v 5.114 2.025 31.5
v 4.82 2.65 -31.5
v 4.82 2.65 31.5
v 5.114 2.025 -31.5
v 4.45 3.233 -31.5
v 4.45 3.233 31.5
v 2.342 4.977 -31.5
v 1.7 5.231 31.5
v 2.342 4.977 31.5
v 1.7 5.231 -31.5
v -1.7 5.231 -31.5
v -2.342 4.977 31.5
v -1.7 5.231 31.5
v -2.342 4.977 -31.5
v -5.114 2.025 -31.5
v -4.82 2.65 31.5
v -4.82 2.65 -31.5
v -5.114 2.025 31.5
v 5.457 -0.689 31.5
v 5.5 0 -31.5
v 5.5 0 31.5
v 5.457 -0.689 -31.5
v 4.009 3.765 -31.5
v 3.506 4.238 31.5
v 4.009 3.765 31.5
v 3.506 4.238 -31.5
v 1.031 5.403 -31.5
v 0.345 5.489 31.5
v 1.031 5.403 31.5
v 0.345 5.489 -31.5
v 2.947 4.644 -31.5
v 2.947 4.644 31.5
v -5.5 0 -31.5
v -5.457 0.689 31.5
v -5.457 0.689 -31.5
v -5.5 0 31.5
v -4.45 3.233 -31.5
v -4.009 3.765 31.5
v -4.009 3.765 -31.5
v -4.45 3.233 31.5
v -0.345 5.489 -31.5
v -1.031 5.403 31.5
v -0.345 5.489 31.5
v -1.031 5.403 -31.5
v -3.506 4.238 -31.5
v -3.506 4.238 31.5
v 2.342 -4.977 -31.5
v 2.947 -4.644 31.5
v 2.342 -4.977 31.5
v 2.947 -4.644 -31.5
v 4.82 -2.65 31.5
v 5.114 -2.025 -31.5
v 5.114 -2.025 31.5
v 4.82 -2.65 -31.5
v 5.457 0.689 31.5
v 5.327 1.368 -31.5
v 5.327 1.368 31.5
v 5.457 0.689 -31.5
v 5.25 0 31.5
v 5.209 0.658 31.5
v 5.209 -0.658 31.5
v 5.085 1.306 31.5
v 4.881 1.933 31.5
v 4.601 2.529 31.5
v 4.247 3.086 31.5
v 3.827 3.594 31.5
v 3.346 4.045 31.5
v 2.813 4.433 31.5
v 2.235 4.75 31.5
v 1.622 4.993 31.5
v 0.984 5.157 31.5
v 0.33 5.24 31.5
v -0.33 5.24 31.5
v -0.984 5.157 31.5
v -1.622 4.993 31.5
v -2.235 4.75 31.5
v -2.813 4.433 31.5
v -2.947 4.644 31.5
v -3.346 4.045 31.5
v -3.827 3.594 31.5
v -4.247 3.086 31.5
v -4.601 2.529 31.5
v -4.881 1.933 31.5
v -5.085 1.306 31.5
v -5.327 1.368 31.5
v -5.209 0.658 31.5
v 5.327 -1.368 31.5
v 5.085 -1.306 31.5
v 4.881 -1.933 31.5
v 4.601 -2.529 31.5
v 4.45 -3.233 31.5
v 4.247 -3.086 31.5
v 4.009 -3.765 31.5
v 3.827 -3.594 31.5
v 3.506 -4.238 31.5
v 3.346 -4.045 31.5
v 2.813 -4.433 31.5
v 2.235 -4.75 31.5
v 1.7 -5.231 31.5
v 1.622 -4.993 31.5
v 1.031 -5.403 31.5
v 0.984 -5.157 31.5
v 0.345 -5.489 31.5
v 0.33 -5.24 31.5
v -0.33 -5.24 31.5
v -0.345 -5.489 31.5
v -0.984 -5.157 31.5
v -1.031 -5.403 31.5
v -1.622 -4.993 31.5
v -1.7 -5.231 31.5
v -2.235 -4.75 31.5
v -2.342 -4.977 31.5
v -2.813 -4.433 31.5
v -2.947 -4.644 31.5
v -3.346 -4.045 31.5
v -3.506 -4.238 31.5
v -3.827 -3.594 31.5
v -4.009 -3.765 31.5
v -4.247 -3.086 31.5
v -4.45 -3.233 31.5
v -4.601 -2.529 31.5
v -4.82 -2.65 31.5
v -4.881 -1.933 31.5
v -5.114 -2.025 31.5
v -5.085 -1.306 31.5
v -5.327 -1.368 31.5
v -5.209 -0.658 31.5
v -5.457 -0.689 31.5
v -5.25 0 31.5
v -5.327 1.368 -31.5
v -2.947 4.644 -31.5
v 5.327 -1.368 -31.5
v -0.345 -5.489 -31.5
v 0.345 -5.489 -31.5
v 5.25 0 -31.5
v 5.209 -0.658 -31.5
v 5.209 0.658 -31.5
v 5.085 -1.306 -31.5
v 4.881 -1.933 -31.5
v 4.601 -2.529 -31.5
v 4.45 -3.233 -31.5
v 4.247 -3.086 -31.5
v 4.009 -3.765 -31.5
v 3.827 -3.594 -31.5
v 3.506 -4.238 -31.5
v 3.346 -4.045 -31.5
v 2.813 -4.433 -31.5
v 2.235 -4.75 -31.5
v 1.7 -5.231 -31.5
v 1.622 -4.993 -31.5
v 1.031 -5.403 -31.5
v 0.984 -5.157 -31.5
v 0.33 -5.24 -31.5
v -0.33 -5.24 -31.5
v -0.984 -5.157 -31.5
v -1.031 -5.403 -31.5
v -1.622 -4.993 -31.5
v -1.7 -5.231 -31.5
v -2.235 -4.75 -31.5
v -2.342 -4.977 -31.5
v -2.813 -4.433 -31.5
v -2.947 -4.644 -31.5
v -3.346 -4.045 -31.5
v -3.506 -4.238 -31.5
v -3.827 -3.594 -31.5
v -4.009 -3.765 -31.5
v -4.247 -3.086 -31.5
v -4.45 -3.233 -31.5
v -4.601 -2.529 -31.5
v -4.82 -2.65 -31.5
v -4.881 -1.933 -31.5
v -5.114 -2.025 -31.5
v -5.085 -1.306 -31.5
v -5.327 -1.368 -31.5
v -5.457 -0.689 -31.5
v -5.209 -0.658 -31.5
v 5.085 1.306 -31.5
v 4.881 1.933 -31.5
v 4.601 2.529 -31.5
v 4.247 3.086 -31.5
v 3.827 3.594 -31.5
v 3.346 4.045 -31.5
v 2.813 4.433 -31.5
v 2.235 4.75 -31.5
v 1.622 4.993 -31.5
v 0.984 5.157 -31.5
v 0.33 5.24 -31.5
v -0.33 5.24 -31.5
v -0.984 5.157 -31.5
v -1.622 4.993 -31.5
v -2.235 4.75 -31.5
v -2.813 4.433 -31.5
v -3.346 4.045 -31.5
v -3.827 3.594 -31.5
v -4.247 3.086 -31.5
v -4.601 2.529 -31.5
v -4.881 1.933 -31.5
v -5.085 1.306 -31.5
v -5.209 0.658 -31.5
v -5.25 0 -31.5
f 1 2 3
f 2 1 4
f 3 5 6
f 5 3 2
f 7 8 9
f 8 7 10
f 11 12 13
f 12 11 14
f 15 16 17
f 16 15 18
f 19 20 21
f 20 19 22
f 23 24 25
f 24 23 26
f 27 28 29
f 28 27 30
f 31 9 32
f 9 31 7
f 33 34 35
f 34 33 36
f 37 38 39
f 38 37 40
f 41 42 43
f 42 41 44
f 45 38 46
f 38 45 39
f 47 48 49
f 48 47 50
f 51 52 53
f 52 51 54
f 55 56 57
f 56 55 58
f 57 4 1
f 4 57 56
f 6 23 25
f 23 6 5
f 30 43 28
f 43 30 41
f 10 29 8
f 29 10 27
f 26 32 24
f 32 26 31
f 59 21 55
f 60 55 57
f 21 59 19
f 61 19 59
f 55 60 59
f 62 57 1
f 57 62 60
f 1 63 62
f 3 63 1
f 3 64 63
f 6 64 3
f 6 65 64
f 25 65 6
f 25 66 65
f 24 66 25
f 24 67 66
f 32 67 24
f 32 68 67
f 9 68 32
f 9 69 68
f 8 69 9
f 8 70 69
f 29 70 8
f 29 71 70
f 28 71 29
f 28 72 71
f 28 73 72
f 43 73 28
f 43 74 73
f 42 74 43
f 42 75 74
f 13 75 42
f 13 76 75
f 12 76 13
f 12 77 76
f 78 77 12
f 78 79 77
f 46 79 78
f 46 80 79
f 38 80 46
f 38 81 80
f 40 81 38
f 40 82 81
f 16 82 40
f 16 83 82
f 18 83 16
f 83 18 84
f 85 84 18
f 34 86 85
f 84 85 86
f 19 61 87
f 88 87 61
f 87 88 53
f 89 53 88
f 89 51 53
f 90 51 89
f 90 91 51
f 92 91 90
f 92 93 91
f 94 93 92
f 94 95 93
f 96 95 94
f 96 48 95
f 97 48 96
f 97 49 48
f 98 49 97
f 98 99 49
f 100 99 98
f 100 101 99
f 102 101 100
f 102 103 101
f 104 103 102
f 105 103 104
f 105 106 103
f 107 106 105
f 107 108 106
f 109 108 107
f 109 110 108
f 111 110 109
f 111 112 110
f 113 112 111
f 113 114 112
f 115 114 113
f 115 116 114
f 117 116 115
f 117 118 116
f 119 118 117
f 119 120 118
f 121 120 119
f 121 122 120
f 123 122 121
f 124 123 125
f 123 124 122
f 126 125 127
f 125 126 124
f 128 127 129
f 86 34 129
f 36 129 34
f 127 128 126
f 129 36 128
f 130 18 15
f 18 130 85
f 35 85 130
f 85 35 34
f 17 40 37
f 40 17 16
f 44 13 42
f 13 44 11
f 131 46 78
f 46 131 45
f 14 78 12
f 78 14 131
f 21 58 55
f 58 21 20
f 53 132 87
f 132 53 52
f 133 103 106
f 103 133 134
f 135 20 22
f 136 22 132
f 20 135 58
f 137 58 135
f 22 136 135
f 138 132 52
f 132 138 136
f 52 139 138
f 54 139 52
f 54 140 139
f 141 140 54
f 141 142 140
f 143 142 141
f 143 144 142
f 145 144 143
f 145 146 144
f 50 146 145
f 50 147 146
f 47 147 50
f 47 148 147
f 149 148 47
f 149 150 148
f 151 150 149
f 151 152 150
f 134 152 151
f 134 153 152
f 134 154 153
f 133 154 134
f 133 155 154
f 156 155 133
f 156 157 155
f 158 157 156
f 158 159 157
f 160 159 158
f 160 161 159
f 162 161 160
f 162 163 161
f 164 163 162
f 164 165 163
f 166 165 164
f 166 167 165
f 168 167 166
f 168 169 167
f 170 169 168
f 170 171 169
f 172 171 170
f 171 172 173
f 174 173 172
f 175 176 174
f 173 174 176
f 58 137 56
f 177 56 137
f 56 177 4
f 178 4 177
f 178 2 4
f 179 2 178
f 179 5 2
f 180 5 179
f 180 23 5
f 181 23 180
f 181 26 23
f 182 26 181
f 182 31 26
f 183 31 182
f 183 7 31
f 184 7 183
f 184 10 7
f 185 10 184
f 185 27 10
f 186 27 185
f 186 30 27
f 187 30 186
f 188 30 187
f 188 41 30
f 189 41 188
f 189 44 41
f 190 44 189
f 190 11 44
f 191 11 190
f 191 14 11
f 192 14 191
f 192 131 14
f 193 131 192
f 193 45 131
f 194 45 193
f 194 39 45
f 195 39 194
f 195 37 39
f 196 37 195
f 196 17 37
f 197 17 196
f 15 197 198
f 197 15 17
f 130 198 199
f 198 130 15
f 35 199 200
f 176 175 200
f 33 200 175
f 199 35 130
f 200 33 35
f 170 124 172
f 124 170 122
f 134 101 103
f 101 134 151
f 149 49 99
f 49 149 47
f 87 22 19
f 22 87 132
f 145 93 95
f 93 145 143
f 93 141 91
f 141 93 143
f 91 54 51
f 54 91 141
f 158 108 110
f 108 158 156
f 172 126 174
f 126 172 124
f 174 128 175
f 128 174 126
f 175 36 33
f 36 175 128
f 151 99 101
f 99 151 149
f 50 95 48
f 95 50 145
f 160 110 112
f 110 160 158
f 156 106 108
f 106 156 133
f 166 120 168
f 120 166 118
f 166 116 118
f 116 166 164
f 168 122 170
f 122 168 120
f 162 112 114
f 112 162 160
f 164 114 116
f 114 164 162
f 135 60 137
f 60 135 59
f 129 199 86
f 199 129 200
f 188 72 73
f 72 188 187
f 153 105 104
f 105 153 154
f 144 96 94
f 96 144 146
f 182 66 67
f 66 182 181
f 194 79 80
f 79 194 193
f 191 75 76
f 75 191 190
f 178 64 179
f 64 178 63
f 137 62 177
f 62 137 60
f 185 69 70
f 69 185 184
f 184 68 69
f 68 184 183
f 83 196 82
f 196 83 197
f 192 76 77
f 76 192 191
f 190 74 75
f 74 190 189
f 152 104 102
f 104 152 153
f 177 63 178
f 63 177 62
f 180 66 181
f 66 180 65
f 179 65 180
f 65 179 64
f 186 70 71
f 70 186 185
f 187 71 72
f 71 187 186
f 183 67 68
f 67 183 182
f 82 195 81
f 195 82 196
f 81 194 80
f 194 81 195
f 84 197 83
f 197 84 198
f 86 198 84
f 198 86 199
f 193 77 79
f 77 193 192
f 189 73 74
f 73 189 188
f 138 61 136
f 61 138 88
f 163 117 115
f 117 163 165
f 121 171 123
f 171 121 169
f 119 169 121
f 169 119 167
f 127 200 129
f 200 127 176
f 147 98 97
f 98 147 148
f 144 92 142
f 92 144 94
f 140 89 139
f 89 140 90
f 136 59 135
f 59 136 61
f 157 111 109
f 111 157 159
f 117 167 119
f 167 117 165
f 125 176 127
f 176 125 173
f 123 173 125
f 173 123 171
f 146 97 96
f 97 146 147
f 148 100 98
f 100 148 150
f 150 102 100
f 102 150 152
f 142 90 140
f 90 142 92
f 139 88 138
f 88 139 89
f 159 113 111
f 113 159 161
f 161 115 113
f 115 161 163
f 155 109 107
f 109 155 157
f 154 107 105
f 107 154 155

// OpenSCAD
$fn = 50;


difference() {
	union() {
		translate(v = [0, 0, -31.5000000000]) {
			cylinder(h = 63, r = 5.5000000000);
		}
	}
	union() {
		translate(v = [0, 0, -100.0000000000]) {
			cylinder(h = 200, r = 5.2500000000);
		}
	}
}
